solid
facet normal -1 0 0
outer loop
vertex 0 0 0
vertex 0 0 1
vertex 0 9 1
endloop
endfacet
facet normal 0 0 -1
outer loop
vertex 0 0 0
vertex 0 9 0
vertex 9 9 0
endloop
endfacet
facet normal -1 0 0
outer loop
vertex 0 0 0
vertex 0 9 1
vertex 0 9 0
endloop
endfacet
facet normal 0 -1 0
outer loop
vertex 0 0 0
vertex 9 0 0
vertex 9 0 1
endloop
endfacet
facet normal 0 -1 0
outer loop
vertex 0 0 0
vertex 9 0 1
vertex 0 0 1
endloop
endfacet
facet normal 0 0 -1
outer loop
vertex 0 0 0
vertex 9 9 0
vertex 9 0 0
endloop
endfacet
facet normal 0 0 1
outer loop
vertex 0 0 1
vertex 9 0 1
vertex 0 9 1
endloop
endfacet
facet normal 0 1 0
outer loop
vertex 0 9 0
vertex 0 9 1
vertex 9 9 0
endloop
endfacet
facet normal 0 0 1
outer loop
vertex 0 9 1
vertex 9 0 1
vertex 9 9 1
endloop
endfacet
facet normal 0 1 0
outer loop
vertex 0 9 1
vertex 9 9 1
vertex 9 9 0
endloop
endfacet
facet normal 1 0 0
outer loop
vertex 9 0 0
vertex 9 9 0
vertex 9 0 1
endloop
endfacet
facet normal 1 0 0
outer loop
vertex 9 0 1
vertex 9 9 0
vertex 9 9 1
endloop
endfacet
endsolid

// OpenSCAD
/* Warning, this is a very basic generator with a lot of approximation 
input data : [VQFN, QBA, 9x9mm, 76, , A, C04-01195A]
generated by com.zoubworld.electronics.cad.model3d.Basic
Date : Sun Feb 15 10:50:49 CET 2026
*/

//body
color("black")
translate([0,0,0])
cube([9.0,9.0,1.0], center=false);
